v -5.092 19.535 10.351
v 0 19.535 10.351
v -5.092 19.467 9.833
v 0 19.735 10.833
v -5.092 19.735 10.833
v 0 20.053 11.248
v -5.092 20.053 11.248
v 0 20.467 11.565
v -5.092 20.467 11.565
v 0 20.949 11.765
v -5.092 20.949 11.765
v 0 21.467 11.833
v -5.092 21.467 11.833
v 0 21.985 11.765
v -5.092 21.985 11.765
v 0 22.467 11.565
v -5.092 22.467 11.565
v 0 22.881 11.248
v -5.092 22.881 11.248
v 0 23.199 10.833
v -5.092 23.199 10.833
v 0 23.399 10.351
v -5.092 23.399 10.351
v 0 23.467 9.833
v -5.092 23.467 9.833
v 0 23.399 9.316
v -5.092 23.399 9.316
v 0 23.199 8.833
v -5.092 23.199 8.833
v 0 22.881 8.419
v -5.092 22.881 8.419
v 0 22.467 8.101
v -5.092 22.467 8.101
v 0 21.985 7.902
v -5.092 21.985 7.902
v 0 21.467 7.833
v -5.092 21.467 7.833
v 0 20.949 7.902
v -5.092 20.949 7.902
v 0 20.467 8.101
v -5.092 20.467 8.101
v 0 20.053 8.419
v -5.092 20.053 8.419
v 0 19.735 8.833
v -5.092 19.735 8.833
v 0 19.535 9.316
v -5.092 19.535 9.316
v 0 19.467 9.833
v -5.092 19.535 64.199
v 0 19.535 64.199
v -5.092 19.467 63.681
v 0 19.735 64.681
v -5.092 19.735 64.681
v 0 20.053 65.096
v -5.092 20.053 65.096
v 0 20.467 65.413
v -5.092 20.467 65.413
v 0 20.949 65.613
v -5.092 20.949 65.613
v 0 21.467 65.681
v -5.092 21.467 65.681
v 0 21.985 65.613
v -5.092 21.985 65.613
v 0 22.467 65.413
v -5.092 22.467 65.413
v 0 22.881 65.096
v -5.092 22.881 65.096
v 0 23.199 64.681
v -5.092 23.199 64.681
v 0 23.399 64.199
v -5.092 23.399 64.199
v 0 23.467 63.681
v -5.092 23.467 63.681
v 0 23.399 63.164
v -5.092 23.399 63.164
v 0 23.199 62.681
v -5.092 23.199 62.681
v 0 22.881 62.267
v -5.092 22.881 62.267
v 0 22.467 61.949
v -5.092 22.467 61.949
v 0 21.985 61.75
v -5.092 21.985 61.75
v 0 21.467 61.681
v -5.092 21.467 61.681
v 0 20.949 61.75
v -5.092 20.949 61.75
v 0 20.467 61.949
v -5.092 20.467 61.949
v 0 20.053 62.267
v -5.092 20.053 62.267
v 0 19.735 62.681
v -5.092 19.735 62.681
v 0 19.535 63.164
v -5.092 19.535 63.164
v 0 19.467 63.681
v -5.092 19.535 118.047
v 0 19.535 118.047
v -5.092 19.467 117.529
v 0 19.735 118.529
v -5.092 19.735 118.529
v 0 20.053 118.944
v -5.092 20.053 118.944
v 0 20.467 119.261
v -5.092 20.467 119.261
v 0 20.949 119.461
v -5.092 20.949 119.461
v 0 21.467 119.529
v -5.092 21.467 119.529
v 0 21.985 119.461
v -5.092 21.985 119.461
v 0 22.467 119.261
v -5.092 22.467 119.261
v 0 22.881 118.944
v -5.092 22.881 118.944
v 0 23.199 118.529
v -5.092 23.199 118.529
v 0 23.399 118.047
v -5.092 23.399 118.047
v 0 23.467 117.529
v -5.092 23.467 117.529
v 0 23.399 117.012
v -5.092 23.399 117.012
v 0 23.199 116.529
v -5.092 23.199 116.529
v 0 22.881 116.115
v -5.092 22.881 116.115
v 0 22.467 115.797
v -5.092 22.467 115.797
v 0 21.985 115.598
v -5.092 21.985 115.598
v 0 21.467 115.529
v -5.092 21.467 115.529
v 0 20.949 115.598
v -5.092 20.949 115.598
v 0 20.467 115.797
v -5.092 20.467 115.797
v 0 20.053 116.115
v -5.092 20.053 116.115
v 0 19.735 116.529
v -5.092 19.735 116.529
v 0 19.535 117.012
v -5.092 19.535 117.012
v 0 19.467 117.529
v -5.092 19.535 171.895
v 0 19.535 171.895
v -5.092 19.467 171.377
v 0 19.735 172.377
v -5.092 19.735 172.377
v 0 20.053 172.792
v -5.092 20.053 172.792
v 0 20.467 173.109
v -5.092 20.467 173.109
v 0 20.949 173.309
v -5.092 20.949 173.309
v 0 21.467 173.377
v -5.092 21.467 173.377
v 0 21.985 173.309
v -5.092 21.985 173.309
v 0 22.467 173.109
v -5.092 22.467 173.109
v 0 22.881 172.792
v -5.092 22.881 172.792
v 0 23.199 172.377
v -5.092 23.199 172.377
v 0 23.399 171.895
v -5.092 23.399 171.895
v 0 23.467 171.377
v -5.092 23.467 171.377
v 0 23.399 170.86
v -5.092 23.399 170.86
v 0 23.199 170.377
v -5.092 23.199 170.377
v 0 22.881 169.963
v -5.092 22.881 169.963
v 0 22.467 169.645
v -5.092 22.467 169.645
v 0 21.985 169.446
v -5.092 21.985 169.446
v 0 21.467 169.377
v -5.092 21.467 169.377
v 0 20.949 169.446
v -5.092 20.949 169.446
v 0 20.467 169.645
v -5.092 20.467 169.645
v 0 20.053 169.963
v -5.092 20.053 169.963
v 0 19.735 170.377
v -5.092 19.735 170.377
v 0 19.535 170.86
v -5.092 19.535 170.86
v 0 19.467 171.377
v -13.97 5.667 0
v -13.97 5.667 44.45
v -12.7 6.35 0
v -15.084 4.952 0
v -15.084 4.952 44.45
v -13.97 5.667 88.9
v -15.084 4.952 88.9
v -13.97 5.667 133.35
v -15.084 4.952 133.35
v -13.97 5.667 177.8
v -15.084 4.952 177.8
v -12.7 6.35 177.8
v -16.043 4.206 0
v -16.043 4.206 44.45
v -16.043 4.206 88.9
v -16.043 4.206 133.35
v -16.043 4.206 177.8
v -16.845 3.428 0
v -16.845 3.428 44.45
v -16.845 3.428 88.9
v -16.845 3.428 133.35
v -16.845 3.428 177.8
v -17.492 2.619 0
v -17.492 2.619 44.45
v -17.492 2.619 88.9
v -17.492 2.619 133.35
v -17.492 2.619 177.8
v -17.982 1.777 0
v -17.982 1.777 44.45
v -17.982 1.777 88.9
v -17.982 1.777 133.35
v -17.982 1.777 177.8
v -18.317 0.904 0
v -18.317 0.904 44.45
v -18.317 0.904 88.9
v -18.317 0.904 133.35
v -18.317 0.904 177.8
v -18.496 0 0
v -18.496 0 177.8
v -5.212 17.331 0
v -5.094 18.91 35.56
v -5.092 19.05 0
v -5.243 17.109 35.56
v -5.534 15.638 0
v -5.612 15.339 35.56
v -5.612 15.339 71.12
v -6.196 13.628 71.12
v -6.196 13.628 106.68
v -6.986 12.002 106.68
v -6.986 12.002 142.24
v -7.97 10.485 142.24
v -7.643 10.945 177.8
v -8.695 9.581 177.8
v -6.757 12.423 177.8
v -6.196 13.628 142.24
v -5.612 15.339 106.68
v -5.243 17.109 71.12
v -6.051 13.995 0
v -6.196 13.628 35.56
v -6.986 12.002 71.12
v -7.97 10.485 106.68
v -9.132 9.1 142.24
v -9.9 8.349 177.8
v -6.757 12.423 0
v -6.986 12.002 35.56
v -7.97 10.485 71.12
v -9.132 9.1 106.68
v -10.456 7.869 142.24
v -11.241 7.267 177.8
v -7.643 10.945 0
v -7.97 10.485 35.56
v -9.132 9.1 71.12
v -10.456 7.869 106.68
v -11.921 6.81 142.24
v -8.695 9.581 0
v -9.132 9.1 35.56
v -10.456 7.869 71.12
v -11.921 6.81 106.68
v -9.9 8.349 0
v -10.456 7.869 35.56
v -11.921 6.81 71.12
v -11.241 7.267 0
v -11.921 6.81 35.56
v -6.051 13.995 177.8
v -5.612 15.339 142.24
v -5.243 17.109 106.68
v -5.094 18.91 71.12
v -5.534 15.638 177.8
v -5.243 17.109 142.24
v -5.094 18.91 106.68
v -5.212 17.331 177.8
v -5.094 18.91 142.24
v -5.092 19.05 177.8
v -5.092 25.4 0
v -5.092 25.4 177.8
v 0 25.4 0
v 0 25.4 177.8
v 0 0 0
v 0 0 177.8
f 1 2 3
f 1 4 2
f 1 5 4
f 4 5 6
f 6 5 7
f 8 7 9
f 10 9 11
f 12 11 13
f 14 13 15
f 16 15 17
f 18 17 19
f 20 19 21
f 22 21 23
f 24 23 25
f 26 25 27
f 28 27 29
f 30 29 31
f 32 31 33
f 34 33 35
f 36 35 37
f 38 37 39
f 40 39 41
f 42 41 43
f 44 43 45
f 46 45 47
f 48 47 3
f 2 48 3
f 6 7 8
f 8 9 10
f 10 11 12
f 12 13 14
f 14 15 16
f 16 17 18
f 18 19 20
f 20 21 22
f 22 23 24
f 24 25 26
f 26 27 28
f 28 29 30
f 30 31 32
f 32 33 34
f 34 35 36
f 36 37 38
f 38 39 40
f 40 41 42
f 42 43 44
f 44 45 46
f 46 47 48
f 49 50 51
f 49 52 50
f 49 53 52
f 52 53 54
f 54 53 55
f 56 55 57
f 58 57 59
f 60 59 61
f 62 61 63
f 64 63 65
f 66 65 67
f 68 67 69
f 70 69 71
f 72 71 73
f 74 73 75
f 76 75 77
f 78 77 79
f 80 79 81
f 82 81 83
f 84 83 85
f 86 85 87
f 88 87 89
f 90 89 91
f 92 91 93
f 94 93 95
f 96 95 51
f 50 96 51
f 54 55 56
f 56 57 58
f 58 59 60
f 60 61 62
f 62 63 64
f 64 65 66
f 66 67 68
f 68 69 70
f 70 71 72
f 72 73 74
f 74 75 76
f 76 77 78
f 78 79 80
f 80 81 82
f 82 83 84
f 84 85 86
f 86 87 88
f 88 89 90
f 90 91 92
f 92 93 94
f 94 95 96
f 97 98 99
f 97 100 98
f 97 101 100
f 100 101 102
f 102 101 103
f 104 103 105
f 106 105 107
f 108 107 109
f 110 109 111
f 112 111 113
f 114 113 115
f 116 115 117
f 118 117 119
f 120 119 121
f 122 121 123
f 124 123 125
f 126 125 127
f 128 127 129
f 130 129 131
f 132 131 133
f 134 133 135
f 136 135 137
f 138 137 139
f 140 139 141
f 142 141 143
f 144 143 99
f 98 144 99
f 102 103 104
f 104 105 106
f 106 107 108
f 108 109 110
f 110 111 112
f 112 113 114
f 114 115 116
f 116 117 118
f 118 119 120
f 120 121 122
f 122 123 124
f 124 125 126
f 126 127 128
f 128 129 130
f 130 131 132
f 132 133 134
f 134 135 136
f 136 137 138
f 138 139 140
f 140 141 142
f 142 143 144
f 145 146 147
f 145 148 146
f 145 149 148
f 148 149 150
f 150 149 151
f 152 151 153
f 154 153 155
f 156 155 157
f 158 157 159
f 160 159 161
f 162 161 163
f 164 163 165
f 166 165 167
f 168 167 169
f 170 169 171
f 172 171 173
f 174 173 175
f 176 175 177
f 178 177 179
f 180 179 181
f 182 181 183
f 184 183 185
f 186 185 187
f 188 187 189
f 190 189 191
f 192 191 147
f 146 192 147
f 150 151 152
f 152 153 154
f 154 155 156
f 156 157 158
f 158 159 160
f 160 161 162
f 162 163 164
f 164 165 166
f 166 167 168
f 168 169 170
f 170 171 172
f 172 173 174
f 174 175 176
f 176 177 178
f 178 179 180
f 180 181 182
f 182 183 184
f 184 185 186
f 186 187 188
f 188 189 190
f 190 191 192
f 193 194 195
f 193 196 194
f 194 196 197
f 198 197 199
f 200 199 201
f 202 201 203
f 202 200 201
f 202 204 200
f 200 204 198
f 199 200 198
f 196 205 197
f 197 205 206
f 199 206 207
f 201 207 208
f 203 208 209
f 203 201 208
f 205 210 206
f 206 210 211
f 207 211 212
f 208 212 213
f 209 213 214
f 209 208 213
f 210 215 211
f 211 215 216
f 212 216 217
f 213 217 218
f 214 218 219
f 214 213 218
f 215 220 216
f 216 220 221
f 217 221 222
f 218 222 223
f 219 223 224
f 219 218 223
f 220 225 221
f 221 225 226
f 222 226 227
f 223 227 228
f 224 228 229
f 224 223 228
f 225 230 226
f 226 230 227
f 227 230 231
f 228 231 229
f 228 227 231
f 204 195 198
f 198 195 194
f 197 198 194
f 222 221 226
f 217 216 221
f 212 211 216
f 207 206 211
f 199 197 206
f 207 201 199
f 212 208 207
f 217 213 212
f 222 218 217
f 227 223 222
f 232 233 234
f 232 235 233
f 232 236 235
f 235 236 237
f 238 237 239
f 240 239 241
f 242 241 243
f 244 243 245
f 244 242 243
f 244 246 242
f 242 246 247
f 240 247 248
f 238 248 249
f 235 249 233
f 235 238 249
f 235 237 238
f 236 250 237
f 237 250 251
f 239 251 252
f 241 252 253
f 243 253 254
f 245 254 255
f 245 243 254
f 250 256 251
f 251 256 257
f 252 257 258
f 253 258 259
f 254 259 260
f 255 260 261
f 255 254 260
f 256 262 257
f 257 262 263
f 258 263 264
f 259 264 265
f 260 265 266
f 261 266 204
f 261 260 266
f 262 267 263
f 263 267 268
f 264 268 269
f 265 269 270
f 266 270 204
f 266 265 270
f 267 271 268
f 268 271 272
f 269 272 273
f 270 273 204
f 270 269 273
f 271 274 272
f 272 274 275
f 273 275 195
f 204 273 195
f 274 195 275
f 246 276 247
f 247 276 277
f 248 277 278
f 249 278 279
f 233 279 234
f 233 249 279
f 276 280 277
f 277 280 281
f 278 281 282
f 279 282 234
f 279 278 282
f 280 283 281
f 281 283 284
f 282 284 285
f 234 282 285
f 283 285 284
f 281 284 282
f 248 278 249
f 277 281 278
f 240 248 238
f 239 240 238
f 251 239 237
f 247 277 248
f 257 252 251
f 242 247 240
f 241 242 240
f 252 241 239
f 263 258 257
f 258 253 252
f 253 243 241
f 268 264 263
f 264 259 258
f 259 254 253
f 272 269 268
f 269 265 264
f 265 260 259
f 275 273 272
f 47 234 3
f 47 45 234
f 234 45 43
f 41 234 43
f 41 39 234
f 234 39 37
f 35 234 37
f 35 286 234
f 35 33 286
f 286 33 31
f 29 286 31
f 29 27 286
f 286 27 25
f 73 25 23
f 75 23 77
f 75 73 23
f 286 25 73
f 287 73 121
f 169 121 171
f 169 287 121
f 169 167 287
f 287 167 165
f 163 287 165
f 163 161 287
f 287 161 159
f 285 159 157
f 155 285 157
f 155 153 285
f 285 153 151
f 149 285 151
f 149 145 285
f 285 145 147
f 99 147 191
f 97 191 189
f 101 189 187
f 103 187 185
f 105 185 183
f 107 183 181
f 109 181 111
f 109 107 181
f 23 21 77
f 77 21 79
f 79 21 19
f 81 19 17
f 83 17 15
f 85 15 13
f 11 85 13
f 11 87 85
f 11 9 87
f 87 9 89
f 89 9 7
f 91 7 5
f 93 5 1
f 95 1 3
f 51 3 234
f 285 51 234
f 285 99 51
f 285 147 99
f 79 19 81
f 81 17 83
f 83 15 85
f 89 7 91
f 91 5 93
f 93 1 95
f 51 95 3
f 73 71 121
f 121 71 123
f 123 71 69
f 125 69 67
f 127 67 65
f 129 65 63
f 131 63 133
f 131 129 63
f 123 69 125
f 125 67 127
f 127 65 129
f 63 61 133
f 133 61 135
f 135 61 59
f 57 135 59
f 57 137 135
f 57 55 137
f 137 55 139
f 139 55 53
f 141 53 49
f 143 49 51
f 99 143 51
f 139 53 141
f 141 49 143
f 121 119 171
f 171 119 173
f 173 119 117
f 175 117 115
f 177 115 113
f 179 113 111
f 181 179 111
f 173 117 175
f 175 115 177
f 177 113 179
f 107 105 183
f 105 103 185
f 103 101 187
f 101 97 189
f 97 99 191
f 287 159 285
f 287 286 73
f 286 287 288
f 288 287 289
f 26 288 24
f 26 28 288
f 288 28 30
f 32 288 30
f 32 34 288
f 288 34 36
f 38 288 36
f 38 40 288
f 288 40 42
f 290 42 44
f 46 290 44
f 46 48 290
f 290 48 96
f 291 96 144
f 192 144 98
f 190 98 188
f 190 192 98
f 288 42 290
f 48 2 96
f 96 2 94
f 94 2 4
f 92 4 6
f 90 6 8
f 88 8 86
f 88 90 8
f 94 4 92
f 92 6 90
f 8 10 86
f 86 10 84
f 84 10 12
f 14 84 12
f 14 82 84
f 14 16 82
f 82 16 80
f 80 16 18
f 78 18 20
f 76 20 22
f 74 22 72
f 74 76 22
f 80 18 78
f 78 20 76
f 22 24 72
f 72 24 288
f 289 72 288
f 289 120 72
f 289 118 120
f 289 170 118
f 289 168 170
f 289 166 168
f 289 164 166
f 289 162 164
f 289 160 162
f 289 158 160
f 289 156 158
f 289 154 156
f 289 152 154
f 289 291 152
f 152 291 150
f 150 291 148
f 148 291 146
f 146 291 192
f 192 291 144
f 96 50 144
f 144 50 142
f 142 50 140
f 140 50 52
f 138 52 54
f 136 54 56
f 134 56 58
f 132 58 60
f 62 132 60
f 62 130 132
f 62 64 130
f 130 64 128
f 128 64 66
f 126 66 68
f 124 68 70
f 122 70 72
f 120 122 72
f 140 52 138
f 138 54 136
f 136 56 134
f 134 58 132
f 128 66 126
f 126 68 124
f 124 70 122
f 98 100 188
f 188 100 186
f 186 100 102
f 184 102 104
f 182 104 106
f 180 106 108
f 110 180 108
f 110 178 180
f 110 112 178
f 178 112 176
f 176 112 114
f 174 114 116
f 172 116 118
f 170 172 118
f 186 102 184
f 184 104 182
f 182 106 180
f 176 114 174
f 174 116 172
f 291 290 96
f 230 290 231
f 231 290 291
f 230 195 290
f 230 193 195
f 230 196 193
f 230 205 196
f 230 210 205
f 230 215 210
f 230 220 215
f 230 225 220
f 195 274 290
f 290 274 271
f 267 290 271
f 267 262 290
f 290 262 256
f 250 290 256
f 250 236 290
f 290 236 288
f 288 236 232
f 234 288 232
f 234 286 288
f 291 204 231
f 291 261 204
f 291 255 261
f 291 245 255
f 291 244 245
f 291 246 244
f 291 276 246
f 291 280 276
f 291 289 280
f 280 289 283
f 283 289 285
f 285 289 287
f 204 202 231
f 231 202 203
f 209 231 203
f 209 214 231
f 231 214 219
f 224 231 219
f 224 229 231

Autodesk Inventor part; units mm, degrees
ref_plane "YZ Plane" through (0, 0, 0) normal (1, 0, 0) x (0, 1, 0)
ref_plane "XZ Plane" through (0, 0, 0) normal (0, 1, 0) x (-1, 0, 0)
ref_plane "XY Plane" through (0, 0, 0) normal (0, 0, 1) x (1, 0, 0)
sketch "Sketch1" plane through (0, 0, 0) normal (0, 0, 1) x (1, 0, 0)
  line L0 (-5.0917, 19.05) -> (-5.0917, 25.4)
  line L1 (0, 25.4) -> (-5.0917, 25.4)
  line L2 (-18.4964, 0) -> (0, 0)
  line L3 (0, 25.4) -> (0, 0)
  arc A0 (-12.7, 6.35) -> (-5.0917, 19.05) centre (-19.7746, 19.2173) ccw
  spline S0 degree 2 poles (-12.7, 6.35) (-18.092, 3.6812) (-18.4964, 0) knots 0 0 0 1 1 1
  point P0 (-17.2168, 2.9909)
  dimension "d1" = 6.35
  dimension "d7" = 25.4
  dimension "d8" = 18.4964
extrude "Extrusion1" add sketch "Sketch1" along normal blind 177.8
hole "Hole1" at (0, 21.4671, 171.3774) direction (-1, 0, 0) diameter 4 end through all
pattern_linear "Rectangular Pattern1" count 4 spacing 53.848 along (0, 0, -1) of "Hole1"
properties part number "Intake inclined edge bottom"
